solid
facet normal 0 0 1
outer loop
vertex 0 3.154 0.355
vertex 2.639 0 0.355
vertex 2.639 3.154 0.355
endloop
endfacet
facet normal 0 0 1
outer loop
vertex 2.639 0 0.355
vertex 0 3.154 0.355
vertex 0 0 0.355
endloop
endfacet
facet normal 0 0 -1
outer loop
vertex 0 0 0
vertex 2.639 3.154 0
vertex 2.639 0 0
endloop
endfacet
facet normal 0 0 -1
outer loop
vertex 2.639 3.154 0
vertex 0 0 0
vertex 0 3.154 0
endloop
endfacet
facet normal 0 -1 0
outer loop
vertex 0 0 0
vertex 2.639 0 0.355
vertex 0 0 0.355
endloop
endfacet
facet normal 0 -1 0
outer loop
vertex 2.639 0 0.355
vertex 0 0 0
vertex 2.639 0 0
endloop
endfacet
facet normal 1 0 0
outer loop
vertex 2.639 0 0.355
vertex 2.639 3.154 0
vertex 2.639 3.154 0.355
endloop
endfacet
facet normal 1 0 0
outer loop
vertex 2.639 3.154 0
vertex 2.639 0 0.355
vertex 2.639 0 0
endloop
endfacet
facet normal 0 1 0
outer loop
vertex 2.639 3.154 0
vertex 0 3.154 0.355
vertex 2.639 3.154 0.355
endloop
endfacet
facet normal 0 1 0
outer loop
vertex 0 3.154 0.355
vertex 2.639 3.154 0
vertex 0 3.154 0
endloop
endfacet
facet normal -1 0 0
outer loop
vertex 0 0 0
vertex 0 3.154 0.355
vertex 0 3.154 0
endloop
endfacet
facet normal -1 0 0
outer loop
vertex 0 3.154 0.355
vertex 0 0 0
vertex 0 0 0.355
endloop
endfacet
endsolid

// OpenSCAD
/* Warning, this is a very basic generator with a lot of approximation 
input data : [WLCSP, FLB, 2.639x3.154x0.355mm, 8, , B, C04-21241B]
generated by com.zoubworld.electronics.cad.model3d.Basic
Date : Sun Feb 15 10:50:49 CET 2026
*/

//body
color("black")
translate([0,0,0])
cube([2.639,3.154,0.355], center=false);
